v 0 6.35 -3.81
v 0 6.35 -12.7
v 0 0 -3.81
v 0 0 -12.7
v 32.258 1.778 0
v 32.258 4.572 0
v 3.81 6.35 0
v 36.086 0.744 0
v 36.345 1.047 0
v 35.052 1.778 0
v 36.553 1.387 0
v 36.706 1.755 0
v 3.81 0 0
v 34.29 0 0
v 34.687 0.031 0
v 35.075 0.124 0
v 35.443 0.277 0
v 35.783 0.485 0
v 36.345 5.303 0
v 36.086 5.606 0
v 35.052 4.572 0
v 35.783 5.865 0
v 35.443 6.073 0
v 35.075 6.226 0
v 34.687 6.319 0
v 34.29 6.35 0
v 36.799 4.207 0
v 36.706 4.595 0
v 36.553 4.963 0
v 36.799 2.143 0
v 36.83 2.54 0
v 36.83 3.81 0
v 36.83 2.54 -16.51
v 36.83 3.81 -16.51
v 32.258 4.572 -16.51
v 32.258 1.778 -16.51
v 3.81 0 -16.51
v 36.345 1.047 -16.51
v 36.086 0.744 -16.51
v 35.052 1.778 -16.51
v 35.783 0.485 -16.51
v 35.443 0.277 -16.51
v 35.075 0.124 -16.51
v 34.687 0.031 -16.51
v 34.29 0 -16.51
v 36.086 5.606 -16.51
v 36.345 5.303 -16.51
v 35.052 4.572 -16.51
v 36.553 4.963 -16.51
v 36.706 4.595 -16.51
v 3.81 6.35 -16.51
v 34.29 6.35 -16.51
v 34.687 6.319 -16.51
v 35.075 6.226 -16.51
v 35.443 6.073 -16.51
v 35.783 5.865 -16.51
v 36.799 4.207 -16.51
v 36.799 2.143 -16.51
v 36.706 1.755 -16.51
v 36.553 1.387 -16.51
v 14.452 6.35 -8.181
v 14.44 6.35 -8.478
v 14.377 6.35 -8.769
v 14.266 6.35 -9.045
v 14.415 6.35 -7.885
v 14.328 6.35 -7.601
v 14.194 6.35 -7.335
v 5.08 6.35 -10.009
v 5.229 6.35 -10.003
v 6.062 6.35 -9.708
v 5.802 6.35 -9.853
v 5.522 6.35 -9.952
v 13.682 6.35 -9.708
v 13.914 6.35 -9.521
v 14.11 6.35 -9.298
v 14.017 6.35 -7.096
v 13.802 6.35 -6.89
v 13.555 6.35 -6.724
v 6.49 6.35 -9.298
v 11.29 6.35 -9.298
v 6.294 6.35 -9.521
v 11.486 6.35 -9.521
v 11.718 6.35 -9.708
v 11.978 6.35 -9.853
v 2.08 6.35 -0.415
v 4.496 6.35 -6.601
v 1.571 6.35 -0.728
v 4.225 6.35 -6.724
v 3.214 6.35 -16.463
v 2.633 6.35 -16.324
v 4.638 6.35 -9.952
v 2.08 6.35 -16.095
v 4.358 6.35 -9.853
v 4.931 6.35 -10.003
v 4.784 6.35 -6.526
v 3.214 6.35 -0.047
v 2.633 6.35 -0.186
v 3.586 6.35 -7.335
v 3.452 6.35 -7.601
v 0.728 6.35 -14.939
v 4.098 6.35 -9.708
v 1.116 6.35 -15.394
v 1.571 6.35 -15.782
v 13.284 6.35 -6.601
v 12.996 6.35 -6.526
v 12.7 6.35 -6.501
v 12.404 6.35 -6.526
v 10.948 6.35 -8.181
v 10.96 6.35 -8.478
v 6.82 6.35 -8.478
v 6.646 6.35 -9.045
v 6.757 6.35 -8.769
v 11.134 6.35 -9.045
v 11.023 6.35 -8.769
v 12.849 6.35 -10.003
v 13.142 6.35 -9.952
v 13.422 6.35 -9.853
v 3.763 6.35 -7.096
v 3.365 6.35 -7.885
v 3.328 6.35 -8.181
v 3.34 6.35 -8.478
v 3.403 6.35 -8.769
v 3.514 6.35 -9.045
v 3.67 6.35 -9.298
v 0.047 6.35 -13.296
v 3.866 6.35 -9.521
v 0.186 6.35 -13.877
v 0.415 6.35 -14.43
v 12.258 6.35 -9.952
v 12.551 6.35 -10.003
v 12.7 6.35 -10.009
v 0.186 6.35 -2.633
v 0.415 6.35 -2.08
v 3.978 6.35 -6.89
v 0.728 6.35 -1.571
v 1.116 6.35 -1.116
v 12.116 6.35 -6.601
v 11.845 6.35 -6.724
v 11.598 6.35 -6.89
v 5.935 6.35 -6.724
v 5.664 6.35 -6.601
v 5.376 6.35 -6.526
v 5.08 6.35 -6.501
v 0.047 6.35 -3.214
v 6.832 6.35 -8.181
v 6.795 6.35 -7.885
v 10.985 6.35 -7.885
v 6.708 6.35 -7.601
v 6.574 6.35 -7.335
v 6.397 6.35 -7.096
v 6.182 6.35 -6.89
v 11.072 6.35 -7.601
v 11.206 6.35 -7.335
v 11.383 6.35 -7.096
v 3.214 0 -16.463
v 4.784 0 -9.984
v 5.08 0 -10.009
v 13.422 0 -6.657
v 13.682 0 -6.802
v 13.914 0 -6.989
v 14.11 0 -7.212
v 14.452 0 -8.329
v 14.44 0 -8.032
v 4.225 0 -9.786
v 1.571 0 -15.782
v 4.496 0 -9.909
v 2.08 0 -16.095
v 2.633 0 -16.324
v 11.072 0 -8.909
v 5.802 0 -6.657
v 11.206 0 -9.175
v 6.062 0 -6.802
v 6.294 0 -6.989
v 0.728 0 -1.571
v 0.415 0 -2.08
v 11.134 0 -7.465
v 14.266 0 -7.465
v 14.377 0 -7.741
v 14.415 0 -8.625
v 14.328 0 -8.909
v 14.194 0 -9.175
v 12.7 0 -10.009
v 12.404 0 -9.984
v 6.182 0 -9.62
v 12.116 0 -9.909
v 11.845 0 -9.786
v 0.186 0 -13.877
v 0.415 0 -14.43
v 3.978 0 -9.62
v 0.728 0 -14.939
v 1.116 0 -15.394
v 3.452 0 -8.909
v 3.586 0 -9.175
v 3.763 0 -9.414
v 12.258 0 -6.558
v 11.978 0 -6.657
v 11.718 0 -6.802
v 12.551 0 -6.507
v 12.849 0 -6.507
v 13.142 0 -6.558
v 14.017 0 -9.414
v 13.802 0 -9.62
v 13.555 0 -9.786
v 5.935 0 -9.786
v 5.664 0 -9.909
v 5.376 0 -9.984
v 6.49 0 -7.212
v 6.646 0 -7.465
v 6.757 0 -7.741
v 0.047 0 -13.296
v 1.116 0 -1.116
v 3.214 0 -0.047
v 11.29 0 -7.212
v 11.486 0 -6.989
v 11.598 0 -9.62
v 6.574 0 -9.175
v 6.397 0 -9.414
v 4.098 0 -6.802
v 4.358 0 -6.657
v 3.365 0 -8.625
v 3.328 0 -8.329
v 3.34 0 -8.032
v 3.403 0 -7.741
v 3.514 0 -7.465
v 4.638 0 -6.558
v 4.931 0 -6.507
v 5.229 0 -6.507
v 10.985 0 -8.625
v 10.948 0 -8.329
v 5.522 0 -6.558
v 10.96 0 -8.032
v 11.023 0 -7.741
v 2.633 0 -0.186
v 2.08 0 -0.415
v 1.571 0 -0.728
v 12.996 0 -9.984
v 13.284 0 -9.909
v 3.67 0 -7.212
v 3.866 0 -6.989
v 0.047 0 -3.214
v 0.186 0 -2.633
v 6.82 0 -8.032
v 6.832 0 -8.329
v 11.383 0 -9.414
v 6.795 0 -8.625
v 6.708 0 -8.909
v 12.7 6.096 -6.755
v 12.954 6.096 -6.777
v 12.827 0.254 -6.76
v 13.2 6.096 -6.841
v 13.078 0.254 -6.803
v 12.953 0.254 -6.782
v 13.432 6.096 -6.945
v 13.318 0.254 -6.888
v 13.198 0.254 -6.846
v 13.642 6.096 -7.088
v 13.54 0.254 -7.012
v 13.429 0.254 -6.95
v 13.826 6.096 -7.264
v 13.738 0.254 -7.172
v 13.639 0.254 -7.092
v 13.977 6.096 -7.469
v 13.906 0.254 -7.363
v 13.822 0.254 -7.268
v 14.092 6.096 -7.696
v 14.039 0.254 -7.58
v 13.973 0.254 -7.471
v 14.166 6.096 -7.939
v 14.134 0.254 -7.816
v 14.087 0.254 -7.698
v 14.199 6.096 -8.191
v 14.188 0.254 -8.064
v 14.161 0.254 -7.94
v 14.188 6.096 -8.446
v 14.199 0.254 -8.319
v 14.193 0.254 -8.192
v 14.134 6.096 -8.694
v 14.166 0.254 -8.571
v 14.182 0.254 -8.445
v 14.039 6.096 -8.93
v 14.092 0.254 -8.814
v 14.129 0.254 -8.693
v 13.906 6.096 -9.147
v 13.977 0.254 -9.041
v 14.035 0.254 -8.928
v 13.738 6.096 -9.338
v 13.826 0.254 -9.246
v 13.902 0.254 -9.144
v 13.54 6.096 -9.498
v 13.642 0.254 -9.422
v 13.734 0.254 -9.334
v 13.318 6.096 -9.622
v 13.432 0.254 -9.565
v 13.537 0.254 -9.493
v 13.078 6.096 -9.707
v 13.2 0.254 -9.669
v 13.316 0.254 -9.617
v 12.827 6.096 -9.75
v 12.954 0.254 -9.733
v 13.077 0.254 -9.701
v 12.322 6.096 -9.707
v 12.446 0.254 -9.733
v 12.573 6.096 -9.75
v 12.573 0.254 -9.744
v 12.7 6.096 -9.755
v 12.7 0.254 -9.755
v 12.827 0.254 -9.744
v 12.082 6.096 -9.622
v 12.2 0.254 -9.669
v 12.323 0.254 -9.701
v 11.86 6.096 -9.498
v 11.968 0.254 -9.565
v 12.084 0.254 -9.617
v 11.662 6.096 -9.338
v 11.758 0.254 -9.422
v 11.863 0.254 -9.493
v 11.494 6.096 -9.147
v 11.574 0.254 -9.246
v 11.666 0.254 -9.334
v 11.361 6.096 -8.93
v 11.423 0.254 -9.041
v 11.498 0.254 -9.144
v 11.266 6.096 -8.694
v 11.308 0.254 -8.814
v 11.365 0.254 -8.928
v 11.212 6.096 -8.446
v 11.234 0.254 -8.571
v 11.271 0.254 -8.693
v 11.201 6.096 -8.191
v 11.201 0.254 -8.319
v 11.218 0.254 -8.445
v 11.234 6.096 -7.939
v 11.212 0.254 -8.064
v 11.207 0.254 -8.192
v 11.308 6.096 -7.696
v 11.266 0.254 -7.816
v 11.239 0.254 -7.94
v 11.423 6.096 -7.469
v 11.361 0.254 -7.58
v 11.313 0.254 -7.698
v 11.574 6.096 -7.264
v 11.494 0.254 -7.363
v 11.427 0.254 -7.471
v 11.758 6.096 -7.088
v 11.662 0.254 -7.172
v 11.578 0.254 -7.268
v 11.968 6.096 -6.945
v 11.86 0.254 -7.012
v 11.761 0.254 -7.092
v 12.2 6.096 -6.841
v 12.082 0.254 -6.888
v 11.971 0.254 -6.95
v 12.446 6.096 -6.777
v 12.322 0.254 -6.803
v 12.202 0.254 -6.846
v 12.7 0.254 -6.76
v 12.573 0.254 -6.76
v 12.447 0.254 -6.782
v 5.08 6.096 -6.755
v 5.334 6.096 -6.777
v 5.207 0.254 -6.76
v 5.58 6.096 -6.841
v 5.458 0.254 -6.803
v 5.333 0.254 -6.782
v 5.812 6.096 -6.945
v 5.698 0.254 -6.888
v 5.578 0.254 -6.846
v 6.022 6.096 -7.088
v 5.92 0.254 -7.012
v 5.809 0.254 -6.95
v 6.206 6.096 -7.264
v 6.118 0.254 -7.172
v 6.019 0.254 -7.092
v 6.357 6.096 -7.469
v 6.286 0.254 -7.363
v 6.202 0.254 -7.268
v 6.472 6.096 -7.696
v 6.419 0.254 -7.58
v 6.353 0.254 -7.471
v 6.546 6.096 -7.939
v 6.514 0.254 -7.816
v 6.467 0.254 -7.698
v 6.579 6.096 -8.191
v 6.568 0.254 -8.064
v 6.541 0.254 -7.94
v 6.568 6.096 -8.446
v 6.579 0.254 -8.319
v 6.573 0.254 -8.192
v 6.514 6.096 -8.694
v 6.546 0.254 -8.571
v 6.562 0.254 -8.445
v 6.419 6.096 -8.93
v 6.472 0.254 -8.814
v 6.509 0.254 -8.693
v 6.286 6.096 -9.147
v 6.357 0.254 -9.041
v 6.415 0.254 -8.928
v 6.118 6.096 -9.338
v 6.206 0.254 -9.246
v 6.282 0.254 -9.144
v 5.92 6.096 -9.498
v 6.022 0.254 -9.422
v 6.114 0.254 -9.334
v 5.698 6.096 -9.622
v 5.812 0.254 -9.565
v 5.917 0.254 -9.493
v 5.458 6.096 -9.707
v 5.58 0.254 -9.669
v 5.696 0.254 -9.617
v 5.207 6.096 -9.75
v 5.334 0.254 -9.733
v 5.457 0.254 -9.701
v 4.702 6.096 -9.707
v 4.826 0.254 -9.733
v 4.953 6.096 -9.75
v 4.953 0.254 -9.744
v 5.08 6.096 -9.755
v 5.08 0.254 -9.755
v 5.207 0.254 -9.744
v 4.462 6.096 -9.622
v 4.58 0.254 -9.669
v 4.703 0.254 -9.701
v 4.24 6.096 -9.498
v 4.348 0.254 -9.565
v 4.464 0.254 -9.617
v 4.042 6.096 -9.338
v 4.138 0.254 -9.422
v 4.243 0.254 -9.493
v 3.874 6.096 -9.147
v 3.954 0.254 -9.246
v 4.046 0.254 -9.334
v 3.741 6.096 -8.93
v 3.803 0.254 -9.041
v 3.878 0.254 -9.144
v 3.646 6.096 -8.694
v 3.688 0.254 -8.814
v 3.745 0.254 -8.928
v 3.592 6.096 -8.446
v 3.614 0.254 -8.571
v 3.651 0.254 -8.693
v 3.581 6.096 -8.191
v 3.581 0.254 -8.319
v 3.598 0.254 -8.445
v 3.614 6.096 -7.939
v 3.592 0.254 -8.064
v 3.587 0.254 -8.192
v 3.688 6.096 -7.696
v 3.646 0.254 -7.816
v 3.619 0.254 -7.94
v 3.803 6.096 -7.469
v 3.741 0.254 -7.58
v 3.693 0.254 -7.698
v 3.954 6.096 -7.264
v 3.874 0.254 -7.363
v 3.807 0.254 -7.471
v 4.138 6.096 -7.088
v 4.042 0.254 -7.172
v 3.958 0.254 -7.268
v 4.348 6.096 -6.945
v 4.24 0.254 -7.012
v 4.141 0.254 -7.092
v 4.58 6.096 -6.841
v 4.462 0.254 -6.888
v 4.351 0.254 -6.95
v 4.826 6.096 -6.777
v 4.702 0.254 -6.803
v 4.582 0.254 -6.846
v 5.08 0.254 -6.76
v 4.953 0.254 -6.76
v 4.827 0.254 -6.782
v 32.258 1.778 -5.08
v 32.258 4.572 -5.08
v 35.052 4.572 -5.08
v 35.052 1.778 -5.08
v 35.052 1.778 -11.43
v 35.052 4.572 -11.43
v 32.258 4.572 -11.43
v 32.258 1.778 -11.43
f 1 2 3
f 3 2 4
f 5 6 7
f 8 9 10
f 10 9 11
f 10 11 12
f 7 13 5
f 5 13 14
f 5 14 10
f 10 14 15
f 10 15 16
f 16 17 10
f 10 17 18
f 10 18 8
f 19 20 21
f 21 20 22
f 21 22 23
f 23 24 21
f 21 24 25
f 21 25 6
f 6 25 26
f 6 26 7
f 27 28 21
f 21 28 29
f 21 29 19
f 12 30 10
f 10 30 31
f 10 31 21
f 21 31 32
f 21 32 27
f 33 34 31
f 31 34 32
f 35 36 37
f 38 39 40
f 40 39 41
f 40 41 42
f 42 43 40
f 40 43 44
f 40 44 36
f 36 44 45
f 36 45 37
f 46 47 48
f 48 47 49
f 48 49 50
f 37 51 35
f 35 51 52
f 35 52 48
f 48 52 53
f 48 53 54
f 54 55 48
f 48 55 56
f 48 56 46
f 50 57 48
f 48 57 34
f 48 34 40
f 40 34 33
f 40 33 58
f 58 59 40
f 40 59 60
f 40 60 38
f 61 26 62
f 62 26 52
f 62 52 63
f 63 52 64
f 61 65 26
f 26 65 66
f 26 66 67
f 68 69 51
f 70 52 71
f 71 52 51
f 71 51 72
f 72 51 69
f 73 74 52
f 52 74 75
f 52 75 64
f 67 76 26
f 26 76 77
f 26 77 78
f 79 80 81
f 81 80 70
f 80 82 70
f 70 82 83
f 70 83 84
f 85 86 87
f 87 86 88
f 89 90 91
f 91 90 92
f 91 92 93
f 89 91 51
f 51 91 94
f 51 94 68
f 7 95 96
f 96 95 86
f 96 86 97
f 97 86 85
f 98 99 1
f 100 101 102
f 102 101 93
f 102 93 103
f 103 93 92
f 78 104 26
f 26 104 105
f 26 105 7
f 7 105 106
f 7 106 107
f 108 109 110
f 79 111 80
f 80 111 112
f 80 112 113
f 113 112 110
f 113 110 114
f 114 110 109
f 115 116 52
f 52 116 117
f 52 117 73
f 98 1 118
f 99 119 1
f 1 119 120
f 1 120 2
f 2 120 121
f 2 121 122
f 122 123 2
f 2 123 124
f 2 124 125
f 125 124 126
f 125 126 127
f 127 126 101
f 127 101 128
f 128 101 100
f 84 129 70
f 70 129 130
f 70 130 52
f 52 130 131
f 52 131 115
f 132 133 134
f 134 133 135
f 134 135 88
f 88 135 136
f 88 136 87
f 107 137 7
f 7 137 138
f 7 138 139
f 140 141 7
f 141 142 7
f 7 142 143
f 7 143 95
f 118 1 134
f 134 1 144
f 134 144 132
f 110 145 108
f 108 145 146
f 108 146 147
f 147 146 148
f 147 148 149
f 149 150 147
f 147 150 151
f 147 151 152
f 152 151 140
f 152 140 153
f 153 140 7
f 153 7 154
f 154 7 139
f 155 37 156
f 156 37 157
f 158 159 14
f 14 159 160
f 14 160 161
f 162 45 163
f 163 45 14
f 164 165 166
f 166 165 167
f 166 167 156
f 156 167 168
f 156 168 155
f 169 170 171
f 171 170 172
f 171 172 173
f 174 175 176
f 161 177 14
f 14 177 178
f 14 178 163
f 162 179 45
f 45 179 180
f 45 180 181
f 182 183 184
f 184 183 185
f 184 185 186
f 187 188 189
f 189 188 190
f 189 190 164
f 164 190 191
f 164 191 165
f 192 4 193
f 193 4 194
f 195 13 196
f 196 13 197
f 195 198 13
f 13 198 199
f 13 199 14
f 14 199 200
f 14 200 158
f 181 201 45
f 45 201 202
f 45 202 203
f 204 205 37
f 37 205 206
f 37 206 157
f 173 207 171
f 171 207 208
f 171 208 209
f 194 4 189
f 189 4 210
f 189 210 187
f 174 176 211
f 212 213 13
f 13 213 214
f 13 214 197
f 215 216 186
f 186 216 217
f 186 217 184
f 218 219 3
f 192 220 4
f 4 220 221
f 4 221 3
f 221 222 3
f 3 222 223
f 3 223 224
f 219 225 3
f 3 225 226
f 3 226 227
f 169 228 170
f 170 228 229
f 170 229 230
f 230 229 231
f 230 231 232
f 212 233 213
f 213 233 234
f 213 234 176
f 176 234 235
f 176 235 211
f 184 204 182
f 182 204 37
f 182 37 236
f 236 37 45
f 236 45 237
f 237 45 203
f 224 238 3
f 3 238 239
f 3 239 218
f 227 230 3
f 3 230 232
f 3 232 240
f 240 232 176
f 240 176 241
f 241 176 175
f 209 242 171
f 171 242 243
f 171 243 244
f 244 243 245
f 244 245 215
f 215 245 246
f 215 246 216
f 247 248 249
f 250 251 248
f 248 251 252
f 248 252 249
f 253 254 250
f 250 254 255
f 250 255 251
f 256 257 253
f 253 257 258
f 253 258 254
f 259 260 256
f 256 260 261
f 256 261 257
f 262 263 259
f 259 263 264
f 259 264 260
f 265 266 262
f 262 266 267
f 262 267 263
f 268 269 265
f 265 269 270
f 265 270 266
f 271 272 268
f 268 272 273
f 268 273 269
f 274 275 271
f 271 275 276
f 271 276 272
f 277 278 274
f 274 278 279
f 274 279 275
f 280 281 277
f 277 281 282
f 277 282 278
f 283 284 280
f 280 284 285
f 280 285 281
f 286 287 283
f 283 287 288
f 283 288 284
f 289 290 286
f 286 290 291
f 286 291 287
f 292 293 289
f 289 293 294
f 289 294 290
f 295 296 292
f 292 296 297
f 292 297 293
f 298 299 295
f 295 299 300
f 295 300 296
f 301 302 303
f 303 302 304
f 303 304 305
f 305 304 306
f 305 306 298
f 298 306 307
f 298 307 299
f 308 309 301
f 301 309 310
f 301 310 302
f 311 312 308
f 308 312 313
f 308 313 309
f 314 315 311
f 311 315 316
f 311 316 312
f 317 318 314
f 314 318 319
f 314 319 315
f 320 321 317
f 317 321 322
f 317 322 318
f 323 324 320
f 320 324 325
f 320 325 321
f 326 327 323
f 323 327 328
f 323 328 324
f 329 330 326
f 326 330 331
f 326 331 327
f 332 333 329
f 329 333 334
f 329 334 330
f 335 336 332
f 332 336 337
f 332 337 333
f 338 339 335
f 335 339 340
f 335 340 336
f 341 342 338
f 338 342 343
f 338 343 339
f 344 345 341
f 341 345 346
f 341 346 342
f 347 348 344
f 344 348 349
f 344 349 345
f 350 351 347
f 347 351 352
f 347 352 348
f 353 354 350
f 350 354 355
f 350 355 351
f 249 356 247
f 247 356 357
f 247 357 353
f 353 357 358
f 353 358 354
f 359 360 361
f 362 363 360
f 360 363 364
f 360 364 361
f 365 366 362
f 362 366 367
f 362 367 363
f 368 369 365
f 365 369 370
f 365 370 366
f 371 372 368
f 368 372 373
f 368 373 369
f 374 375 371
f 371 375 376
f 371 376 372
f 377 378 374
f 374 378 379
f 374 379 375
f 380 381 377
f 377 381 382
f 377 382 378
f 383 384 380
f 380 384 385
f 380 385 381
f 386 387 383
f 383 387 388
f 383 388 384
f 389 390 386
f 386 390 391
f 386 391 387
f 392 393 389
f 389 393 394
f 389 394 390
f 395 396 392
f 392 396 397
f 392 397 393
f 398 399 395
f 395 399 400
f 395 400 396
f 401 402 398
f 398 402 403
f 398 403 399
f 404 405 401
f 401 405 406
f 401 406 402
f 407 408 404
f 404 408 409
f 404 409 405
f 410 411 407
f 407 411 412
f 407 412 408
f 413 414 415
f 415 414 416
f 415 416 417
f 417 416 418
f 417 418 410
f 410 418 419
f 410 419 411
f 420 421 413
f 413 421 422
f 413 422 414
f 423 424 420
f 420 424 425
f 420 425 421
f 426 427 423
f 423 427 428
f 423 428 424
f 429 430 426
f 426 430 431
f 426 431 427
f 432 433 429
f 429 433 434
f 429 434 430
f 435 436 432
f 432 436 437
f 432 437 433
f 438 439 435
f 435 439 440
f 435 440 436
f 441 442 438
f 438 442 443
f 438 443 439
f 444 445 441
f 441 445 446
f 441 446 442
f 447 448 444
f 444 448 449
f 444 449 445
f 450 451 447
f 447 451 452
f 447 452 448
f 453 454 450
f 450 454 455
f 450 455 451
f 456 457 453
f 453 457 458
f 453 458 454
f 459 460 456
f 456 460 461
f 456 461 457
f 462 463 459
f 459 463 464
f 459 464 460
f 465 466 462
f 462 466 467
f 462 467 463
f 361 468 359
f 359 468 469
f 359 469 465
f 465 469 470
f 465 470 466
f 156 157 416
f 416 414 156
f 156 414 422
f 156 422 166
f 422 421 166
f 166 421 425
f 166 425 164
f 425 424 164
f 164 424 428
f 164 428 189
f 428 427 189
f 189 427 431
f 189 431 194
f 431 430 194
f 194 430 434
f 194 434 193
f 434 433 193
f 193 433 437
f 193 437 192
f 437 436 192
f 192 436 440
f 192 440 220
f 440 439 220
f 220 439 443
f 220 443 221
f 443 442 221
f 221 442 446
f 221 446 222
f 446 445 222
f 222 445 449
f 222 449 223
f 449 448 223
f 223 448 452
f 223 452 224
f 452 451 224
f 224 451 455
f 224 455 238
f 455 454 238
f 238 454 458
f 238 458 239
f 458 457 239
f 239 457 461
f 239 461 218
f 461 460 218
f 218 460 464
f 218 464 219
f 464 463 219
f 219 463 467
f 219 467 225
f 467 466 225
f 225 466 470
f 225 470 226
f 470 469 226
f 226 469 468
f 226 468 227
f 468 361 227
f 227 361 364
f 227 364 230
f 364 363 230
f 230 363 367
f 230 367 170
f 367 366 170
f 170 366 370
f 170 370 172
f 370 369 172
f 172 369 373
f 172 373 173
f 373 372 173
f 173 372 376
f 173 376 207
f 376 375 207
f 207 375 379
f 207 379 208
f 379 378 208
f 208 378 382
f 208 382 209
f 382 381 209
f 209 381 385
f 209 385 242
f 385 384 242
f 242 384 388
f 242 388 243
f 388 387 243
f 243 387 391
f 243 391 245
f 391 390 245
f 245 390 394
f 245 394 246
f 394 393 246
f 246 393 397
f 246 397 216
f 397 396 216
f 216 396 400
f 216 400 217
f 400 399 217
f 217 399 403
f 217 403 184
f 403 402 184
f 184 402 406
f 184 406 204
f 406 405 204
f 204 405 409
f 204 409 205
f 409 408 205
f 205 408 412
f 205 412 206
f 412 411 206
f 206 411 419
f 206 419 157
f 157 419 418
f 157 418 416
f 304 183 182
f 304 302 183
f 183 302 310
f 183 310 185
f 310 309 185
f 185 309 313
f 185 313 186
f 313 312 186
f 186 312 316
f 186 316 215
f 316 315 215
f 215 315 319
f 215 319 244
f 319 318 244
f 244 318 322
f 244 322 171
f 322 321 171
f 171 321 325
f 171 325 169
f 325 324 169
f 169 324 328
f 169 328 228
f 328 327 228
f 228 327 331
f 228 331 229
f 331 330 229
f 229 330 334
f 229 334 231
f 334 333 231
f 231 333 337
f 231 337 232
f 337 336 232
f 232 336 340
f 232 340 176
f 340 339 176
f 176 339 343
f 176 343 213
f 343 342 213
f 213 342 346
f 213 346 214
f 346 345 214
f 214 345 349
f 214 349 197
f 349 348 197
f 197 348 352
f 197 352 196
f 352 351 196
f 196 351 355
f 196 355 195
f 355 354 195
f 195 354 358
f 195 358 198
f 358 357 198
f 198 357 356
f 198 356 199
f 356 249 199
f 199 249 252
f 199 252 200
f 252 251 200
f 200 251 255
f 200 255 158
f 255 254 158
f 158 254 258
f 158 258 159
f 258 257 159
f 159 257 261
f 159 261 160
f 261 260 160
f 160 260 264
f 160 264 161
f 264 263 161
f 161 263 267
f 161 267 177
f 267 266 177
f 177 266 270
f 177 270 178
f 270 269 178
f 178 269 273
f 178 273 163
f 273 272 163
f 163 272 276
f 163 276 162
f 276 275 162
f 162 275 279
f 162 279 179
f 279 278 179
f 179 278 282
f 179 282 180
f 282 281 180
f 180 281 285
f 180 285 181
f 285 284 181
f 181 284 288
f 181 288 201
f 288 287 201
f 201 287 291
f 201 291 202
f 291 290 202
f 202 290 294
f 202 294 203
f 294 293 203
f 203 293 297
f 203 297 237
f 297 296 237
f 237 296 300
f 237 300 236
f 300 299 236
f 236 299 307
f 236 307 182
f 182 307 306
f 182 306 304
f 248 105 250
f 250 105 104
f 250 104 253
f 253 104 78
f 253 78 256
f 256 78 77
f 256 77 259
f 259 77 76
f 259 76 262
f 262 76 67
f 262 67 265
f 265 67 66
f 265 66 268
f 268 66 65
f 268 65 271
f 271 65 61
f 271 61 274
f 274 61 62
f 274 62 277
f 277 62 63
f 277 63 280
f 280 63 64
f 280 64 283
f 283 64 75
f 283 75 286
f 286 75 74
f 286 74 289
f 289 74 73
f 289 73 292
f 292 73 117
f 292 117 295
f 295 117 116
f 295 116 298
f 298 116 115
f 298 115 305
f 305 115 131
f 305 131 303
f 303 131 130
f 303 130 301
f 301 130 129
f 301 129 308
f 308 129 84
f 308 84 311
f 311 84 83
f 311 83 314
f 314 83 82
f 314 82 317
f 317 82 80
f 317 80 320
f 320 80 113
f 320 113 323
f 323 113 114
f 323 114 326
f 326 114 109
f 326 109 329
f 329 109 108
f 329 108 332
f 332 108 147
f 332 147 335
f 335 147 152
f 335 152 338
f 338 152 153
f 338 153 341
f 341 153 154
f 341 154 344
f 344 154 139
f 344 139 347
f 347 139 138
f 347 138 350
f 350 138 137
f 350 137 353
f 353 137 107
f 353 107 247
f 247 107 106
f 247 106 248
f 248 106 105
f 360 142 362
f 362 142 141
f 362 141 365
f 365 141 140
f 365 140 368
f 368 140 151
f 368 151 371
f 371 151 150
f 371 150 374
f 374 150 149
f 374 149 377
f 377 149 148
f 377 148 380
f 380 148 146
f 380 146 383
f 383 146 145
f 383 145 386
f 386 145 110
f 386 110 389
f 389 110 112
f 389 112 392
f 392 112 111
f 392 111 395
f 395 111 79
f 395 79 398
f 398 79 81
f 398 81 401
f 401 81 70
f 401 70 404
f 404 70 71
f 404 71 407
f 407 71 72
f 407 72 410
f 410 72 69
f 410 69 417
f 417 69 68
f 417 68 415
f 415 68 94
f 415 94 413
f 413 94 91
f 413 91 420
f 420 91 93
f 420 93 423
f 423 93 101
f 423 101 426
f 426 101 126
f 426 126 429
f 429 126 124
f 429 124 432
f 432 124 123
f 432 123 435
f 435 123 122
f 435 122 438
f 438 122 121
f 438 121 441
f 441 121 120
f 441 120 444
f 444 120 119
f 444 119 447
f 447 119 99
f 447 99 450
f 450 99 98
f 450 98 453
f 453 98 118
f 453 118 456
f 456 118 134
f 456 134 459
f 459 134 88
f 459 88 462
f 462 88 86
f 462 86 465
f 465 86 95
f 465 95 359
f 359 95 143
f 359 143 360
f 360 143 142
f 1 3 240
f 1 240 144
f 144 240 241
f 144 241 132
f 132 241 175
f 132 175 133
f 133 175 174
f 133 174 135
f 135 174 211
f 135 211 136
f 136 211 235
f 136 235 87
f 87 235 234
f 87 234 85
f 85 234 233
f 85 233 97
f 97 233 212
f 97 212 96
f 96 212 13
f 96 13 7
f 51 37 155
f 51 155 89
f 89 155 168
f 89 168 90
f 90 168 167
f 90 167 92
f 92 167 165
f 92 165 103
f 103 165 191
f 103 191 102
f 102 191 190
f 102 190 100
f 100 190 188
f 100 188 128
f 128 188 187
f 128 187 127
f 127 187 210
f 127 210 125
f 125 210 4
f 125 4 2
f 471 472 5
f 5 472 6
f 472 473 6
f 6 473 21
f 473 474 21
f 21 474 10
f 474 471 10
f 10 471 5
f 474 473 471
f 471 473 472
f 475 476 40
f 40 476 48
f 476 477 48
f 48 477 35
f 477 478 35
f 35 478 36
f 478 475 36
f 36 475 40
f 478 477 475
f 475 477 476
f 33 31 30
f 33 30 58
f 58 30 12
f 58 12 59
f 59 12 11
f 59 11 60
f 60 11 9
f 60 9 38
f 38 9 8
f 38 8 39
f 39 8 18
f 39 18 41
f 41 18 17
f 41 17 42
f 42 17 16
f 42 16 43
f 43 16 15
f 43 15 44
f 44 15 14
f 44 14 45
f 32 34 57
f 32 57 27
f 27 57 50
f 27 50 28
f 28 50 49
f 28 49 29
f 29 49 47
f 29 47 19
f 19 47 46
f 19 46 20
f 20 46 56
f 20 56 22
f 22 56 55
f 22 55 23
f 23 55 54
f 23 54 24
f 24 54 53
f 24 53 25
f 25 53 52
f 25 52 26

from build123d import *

# Parameters (mm, degrees)
SKETCH1_W             = 36.83
SKETCH1_H             = 16.51
BOSS_EXTRUDE1_DEPTH   = 6.35
F_3_0MM_DOWEL_HOLE1_D = 3
CHAMFER1_SIZE         = 0.254
FILLET2_R             = 3.81
SKETCH24_W            = 2.794
SKETCH24_H            = 2.794
CUT_EXTRUDE7_DEPTH    = 5.08
SKETCH25_W            = 2.794
SKETCH25_H            = 2.794
CUT_EXTRUDE8_DEPTH    = 5.08
FILLET7_R             = 2.54


with BuildPart() as part:
    # Sketch1 → Boss-Extrude1 (new body)
    with BuildSketch(Plane(origin=(0, 0, 0), x_dir=(1, 0, 0), z_dir=(0, 1, 0))):
        with Locations((18.415, 8.255)):
            Rectangle(SKETCH1_W, SKETCH1_H)
    extrude(amount=BOSS_EXTRUDE1_DEPTH)

    # Ø3.0mm Dowel Hole1 (through all)
    with Locations(Plane(origin=(0, 6.35, 0), x_dir=(1, 0, 0), z_dir=(0, 1, 0))):
        with Locations((5.08, 8.255), (12.7, 8.255)):
            Hole(F_3_0MM_DOWEL_HOLE1_D / 2)

    # Chamfer1
    chamfer1_edges = [part.edges().sort_by_distance(p)[0] for p in [
        (14.2, 6.35, -8.255),
        (14.2, 0, -8.255),
        (6.58, 6.35, -8.255),
        (6.58, 0, -8.255),
    ]]
    chamfer(chamfer1_edges, length=CHAMFER1_SIZE)

    # Fillet2
    fillet2_edges = [part.edges().sort_by_distance(p)[0] for p in [
        (0, 3.175, -16.51),
        (0, 3.175, 0),
    ]]
    fillet(fillet2_edges, radius=FILLET2_R)

    # Sketch24 → Cut-Extrude7 (cut)
    with BuildSketch(Plane.XY):
        with Locations((33.655, 3.175)):
            Rectangle(SKETCH24_W, SKETCH24_H)
    extrude(amount=-CUT_EXTRUDE7_DEPTH, mode=Mode.SUBTRACT)

    # Sketch25 → Cut-Extrude8 (cut)
    with BuildSketch(Plane(origin=(0, 0, -16.51), x_dir=(-1, 0, 0), z_dir=(0, 0, -1))):
        with Locations((-33.655, 3.175)):
            Rectangle(SKETCH25_W, SKETCH25_H)
    extrude(amount=-CUT_EXTRUDE8_DEPTH, mode=Mode.SUBTRACT)

    # Fillet7
    fillet7_edges = [part.edges().sort_by_distance(p)[0] for p in [
        (36.83, 6.35, -8.255),
        (36.83, 0, -8.255),
    ]]
    fillet(fillet7_edges, radius=FILLET7_R)


solid = part.part
